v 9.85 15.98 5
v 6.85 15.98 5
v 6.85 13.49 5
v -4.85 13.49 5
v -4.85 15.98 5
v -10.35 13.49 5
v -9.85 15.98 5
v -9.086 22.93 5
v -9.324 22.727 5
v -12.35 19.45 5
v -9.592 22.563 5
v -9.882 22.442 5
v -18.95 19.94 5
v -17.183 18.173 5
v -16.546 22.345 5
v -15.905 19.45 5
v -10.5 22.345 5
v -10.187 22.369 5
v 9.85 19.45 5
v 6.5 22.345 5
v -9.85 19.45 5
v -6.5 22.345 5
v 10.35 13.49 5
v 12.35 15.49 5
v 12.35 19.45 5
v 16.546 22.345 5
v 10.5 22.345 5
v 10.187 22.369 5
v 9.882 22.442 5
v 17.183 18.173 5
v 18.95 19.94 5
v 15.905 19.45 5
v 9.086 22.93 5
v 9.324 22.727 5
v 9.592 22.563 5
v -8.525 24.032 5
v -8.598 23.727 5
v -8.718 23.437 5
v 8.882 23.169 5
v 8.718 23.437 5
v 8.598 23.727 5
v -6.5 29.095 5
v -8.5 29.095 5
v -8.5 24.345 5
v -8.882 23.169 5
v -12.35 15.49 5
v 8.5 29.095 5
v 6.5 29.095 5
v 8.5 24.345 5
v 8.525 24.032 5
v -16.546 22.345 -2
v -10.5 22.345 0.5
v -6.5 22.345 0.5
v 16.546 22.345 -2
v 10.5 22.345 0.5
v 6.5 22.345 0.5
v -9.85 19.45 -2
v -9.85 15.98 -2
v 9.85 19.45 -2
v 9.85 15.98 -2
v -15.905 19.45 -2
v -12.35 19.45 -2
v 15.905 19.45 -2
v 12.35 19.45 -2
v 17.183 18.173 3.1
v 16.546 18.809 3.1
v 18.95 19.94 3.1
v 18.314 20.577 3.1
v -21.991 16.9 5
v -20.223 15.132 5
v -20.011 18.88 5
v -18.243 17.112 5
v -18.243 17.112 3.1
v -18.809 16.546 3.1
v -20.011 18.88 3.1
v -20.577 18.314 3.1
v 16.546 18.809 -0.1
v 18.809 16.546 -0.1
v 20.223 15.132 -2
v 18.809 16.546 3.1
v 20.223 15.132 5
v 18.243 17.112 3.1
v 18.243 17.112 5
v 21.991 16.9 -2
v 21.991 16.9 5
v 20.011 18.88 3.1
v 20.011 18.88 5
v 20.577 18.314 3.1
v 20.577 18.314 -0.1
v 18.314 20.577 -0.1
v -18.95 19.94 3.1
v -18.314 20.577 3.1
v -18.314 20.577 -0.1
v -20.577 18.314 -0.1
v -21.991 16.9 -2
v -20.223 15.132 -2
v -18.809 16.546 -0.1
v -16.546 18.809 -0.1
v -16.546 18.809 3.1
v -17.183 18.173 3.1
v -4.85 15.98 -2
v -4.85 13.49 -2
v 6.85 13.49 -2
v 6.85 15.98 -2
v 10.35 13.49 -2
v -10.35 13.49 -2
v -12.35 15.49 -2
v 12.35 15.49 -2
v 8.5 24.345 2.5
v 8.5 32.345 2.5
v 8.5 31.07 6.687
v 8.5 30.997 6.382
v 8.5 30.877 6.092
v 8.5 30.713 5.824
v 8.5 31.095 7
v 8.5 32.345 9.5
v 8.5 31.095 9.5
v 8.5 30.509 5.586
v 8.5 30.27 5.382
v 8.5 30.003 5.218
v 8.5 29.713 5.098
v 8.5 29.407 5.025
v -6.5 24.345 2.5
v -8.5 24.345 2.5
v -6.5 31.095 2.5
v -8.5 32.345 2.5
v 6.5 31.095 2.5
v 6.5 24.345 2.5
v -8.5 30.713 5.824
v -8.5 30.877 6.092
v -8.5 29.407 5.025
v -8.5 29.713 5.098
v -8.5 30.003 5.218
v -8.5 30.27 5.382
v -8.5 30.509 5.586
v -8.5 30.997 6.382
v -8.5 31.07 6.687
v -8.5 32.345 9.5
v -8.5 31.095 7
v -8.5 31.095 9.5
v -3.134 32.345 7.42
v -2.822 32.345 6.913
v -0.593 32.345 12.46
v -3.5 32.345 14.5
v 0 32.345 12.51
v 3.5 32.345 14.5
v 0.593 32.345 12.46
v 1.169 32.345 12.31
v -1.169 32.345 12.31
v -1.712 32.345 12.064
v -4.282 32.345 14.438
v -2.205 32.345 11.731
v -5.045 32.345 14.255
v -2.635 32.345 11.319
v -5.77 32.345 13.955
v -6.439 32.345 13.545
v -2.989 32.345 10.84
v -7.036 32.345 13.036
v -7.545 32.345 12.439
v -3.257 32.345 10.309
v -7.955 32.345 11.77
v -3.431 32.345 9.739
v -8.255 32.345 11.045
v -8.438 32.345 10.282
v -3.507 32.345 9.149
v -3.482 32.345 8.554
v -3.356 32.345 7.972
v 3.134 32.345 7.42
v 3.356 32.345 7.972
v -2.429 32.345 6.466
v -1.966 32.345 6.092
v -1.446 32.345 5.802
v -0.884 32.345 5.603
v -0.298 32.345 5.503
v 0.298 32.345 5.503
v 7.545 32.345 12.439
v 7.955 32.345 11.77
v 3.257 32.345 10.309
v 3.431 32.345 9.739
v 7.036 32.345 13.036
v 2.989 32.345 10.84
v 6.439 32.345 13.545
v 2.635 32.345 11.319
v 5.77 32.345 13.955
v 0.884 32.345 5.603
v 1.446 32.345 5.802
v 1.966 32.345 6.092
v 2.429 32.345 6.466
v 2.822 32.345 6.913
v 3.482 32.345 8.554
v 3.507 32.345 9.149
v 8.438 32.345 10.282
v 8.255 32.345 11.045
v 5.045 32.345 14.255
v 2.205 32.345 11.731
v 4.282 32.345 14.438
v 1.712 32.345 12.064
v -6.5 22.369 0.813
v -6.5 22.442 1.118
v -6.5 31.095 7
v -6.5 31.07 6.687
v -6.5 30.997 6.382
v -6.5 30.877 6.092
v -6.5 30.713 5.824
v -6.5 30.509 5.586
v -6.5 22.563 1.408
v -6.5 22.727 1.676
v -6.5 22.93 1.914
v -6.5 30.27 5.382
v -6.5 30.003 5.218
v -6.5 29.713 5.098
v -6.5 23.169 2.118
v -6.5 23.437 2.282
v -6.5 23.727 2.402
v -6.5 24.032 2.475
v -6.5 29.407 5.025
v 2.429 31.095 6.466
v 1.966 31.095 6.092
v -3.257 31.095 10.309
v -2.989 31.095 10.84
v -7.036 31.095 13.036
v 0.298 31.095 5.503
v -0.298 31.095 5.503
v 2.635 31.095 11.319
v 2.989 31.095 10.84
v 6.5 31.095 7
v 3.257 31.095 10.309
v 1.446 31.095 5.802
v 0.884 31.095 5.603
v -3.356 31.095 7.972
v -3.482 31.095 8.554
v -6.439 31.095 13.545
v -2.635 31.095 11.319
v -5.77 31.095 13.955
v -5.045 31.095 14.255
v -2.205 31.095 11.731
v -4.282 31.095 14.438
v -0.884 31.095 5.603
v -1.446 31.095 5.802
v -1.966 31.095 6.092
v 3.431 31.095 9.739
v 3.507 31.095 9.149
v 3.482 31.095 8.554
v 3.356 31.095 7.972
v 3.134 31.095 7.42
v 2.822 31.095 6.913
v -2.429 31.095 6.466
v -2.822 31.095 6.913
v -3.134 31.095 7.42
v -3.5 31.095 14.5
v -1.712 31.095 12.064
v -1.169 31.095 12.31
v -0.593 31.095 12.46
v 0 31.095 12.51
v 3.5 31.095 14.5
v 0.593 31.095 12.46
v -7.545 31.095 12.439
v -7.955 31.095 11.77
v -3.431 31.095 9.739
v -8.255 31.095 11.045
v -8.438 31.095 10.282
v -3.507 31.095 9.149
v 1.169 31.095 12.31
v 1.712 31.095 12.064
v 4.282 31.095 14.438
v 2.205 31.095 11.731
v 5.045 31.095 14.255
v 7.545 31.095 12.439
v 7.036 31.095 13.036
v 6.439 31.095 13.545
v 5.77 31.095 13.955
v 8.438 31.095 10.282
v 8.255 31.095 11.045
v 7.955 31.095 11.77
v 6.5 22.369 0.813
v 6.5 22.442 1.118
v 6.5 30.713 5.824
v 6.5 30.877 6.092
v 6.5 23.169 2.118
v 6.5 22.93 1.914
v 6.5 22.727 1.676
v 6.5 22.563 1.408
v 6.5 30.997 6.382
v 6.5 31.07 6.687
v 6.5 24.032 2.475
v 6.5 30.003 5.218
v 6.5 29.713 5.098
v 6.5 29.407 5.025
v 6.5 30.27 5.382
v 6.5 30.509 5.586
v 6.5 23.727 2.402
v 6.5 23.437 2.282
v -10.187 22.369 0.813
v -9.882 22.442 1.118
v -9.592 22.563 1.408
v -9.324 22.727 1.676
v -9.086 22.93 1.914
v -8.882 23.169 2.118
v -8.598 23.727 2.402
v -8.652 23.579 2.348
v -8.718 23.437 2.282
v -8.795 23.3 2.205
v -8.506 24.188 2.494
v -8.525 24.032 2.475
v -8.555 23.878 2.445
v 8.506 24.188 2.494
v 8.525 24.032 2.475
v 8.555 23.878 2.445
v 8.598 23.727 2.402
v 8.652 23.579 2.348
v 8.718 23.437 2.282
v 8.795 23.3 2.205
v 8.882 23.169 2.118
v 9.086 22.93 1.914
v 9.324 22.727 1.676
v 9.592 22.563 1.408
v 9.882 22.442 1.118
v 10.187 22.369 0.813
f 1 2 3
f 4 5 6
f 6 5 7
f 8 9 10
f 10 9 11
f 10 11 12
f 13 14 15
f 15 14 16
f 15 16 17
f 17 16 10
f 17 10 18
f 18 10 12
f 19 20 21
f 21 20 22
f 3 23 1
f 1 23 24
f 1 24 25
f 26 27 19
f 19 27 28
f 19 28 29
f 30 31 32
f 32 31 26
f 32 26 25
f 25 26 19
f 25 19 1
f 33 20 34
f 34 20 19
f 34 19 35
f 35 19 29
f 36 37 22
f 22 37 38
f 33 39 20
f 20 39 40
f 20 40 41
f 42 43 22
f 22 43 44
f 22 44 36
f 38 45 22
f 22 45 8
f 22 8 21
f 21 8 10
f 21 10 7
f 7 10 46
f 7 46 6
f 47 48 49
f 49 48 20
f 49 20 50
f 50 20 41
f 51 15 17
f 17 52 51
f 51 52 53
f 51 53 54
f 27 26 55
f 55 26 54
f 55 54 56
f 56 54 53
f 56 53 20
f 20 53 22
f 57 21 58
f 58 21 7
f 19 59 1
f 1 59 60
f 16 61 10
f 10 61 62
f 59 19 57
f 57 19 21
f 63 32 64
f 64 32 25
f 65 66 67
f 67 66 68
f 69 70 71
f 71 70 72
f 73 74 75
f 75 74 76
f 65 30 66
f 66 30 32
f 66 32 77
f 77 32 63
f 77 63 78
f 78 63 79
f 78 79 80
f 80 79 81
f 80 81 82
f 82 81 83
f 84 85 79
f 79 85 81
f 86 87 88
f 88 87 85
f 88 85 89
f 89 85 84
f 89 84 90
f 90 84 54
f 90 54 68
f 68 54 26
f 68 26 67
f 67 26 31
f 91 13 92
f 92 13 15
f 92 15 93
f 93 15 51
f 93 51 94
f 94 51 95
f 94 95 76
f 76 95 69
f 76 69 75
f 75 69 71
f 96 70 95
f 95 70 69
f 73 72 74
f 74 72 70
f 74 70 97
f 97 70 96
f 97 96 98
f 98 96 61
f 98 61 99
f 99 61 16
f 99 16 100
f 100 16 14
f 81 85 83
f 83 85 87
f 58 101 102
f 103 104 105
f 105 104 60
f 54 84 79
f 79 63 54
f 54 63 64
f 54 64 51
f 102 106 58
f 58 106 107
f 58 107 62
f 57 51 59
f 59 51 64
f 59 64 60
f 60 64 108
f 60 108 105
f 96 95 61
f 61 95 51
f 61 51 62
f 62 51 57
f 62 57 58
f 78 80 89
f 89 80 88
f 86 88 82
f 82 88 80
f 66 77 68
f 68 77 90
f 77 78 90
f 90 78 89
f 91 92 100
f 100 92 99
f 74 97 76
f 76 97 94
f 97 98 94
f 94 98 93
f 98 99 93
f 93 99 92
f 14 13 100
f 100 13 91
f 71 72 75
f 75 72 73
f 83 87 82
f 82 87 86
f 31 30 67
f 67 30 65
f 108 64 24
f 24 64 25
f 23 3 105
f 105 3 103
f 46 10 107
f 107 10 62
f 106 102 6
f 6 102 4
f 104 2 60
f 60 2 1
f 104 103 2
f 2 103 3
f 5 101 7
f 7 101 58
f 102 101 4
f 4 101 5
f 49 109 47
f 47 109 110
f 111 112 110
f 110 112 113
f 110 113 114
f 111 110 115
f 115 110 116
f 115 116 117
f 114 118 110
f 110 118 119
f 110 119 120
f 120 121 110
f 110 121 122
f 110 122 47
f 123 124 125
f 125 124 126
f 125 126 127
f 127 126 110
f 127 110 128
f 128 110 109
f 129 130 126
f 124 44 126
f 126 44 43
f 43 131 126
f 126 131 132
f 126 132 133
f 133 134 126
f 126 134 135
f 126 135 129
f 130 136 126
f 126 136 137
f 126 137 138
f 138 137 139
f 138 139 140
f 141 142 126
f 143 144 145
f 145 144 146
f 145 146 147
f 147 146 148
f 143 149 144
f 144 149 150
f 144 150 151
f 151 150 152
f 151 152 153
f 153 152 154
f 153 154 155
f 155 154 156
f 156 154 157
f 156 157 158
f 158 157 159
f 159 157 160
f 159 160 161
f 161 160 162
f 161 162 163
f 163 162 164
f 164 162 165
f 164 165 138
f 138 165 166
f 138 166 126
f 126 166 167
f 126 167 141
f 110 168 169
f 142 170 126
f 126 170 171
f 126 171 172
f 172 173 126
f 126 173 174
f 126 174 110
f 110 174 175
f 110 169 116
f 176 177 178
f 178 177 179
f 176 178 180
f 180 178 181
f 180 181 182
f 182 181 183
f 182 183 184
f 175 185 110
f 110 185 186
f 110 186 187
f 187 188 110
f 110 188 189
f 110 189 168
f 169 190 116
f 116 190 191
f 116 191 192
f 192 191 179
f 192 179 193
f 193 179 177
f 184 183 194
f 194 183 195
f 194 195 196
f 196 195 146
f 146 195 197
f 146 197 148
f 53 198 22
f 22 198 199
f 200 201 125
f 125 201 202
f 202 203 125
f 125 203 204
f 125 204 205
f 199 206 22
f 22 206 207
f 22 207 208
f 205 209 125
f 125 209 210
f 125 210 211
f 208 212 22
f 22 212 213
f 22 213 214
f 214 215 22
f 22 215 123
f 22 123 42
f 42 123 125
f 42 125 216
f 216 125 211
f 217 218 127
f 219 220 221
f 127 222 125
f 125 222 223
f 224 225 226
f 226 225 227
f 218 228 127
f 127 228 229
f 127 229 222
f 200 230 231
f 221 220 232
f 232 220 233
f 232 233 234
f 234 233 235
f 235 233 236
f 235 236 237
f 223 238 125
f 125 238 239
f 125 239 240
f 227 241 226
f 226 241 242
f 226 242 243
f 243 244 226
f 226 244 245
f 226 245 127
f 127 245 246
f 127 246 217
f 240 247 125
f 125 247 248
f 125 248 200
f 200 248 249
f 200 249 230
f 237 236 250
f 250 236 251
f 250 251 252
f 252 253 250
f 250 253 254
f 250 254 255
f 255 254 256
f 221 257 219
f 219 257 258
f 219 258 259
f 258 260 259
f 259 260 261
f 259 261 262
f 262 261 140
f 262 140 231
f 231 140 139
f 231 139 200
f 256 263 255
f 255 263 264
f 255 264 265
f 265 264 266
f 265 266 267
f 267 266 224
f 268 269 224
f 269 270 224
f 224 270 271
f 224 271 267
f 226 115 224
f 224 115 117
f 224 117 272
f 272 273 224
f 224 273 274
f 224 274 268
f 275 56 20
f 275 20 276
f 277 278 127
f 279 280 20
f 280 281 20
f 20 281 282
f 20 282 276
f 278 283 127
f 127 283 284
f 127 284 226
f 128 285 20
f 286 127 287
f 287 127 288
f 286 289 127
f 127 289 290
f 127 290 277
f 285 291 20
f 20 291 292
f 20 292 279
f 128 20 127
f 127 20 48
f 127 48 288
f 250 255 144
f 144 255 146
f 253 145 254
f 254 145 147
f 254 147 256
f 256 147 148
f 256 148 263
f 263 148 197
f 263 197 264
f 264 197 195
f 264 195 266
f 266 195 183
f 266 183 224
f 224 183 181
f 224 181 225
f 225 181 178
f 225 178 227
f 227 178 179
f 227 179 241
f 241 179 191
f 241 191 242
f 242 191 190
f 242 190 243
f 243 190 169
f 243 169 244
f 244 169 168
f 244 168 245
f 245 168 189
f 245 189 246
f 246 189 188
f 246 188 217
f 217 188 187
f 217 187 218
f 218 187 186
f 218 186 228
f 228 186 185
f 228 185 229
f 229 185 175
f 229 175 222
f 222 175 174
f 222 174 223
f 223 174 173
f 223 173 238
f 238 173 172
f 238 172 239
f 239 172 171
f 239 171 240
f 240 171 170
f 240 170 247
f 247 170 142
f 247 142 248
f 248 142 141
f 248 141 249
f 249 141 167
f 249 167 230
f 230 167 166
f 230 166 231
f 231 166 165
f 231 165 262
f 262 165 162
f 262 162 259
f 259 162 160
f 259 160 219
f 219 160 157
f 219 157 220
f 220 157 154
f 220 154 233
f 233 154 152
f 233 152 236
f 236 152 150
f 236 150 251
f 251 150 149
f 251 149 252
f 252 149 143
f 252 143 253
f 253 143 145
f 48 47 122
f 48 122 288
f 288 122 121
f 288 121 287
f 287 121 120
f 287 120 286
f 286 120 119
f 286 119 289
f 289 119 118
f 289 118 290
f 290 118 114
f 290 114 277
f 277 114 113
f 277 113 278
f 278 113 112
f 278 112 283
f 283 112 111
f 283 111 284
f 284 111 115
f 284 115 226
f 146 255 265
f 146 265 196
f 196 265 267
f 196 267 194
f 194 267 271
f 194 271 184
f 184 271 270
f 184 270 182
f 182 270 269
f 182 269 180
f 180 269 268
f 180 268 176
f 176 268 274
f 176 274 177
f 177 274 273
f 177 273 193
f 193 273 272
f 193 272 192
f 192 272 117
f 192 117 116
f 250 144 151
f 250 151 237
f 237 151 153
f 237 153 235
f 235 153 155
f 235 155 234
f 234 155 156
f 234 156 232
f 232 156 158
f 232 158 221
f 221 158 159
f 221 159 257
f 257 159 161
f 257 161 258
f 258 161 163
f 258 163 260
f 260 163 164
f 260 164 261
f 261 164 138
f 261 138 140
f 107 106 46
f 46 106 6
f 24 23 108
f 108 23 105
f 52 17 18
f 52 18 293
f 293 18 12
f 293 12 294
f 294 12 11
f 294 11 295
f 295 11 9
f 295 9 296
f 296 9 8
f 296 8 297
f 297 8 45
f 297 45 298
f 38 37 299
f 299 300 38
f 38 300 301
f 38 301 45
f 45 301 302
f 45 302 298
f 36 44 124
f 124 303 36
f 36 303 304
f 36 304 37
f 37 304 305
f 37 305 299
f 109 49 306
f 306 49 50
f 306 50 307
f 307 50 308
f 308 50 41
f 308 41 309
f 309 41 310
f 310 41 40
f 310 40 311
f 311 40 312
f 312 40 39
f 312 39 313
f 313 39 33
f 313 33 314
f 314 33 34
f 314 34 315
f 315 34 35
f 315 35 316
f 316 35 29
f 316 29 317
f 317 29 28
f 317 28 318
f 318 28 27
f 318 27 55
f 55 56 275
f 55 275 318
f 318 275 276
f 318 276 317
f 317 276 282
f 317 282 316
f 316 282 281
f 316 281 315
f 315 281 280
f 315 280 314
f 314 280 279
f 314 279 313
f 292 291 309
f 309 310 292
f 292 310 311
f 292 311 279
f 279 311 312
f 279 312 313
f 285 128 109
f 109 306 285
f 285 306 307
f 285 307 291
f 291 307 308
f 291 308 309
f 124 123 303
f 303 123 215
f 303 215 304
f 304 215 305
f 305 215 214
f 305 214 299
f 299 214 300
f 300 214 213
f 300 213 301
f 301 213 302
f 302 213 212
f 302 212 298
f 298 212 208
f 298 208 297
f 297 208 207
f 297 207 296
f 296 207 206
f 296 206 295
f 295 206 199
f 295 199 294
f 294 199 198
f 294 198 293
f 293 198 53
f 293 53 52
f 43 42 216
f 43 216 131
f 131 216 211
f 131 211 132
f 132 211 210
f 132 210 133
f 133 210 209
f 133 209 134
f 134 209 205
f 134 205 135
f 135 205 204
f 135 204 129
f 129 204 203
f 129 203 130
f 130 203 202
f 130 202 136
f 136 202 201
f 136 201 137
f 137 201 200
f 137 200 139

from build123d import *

# Parameters (mm, degrees)
BOSS_EXTRUDE2_DEPTH = 5
BOSS_EXTRUDE3_DEPTH = 2
SKETCH4_W           = 3.2
SKETCH4_H           = 3.2
CUT_EXTRUDE1_DEPTH  = 2.5
SKETCH5_W           = 3.2
SKETCH5_H           = 3.2
CUT_EXTRUDE2_DEPTH  = 2.5
CUT_EXTRUDE4_REACH  = 34.123
CUT_EXTRUDE5_REACH  = 34.123
SKETCH8_W           = 2.5
SKETCH8_H           = 7
BOSS_EXTRUDE4_DEPTH = 5.96
SKETCH10_W          = 7
SKETCH10_H          = 2.49
BOSS_EXTRUDE5_DEPTH = 3
SKETCH11_W          = 7
SKETCH11_H          = 2.49
BOSS_EXTRUDE6_DEPTH = 5
SKETCH12_W          = 17
SKETCH12_H          = 2.5
BOSS_EXTRUDE7_DEPTH = 10
CUT_EXTRUDE7_REACH  = 41.734
SKETCH14_W          = 13
SKETCH14_H          = 8.75
SKETCH16_W          = 17
SKETCH16_H          = 1.25
BOSS_EXTRUDE8_DEPTH = 9.5
CUT_EXTRUDE8_REACH  = 34.394
SKETCH17_R          = 3.51
FILLET7_R           = 2
FILLET8_R           = 5
FILLET9_R           = 5
CHAMFER1_SIZE       = 2
CHAMFER2_SIZE       = 2
FILLET11_R          = 2
FILLET12_R          = 2
FILLET13_R          = 2
FILLET14_R          = 2
FILLET16_R          = 2


with BuildPart() as part:
    # Sketch2 → Boss-Extrude2 (new body)
    with BuildSketch(Plane.XY):
        Polygon((15.905331571, 19.450007488), (-15.905331571, 19.450007488), (-20.223253942, 15.132085117), (-21.991020895, 16.89985207), (-16.54629868, 22.344574285), (16.54629868, 22.344574285), (21.991020895, 16.89985207), (20.223253942, 15.132085117), align=None)
    extrude(amount=BOSS_EXTRUDE2_DEPTH)

    # Sketch2<2> → Boss-Extrude3 (add)
    with BuildSketch(Plane.XY):
        Polygon((15.905331571, 19.450007488), (-15.905331571, 19.450007488), (-20.223253942, 15.132085117), (-21.991020895, 16.89985207), (-16.54629868, 22.344574285), (16.54629868, 22.344574285), (21.991020895, 16.89985207), (20.223253942, 15.132085117), align=None)
    extrude(amount=-BOSS_EXTRUDE3_DEPTH)

    # Sketch4 → Cut-Extrude1 (cut)
    with BuildSketch(Plane(origin=(19.445436483, 19.445436483, 0), x_dir=(0.7071067811865479, -0.7071067811865471, 0), z_dir=(0.7071067811865471, 0.7071067811865479, 0))):
        with Locations((0, -1.5)):
            Rectangle(SKETCH4_W, SKETCH4_H)
    extrude(amount=-CUT_EXTRUDE1_DEPTH, mode=Mode.SUBTRACT)

    # Sketch5 → Cut-Extrude2 (cut)
    with BuildSketch(Plane(origin=(-19.445436483, 19.445436483, 0), x_dir=(0, 0, 1), z_dir=(-0.7071067811865477, 0.7071067811865475, 0))):
        with Locations((1.5, 0)):
            Rectangle(SKETCH5_W, SKETCH5_H)
    extrude(amount=-CUT_EXTRUDE2_DEPTH, mode=Mode.SUBTRACT)

    # Sketch6 → Cut-Extrude4 (cut, up to next)
    with BuildSketch(Plane.XY.offset(5), mode=Mode.PRIVATE) as cut_extrude4_sk1:
        Polygon((-20.011121908, 18.879751058), (-18.950461736, 19.940411229), (-17.182694783, 18.172644276), (-18.243354955, 17.111984105), align=None)
    cut_extrude4_tool1 = extrude(cut_extrude4_sk1.sketch, amount=-CUT_EXTRUDE4_REACH, mode=Mode.PRIVATE) & part.part
    add(cut_extrude4_tool1.solids().sort_by_distance((-18.596908, 18.526198, 5))[0], mode=Mode.SUBTRACT)

    # Sketch7 → Cut-Extrude5 (cut, up to next)
    with BuildSketch(Plane.XY.offset(5), mode=Mode.PRIVATE) as cut_extrude5_sk1:
        Polygon((17.182694783, 18.172644276), (18.950461736, 19.940411229), (20.011121908, 18.879751058), (18.243354955, 17.111984105), align=None)
    cut_extrude5_tool1 = extrude(cut_extrude5_sk1.sketch, amount=-CUT_EXTRUDE5_REACH, mode=Mode.PRIVATE) & part.part
    add(cut_extrude5_tool1.solids().sort_by_distance((18.596908, 18.526198, 5))[0], mode=Mode.SUBTRACT)

    # Sketch8 → Boss-Extrude4 (add)
    with BuildSketch(Plane(origin=(0, 19.450007488, 0), x_dir=(-1, 0, 0), z_dir=(0, -1, 0))):
        with Locations((11.1, -1.5)):
            Rectangle(SKETCH8_W, SKETCH8_H)
        with Locations((-11.1, -1.5)):
            Rectangle(SKETCH8_W, SKETCH8_H)
    extrude(amount=BOSS_EXTRUDE4_DEPTH)

    # Sketch10 → Boss-Extrude5 (add)
    with BuildSketch(Plane.ZY.offset(-9.85)):
        with Locations((1.5, 14.735007488)):
            Rectangle(SKETCH10_W, SKETCH10_H)
    extrude(amount=BOSS_EXTRUDE5_DEPTH)

    # Sketch11 → Boss-Extrude6 (add)
    with BuildSketch(Plane(origin=(-9.85, 0, 0), x_dir=(0, 0, -1), z_dir=(1, 0, 0))):
        with Locations((-1.5, 14.735007488)):
            Rectangle(SKETCH11_W, SKETCH11_H)
    extrude(amount=BOSS_EXTRUDE6_DEPTH)

    # Sketch12 → Boss-Extrude7 (add)
    with BuildSketch(Plane(origin=(0, 22.344574285, 0), x_dir=(1, 0, 0), z_dir=(0, 1, 0))):
        with Locations((0, -3.75)):
            Rectangle(SKETCH12_W, SKETCH12_H)
    extrude(amount=BOSS_EXTRUDE7_DEPTH)

    # Sketch14 → Cut-Extrude7 (cut, up to next)
    with BuildSketch(Plane.XY.offset(5), mode=Mode.PRIVATE) as cut_extrude7_sk1:
        with Locations((0, 26.719574285)):
            Rectangle(SKETCH14_W, SKETCH14_H)
    cut_extrude7_tool1 = extrude(cut_extrude7_sk1.sketch, amount=-CUT_EXTRUDE7_REACH, mode=Mode.PRIVATE) & part.part
    add(cut_extrude7_tool1.solids().sort_by_distance((0, 26.719574, 5))[0], mode=Mode.SUBTRACT)

    # Sketch16 → Boss-Extrude8 (add)
    with BuildSketch(Plane.XY.offset(5)):
        with Locations((0, 31.719574285)):
            Rectangle(SKETCH16_W, SKETCH16_H)
    extrude(amount=BOSS_EXTRUDE8_DEPTH)

    # Sketch17 → Cut-Extrude8 (cut, up to next)
    with BuildSketch(Plane(origin=(0, 32.344574285, 0), x_dir=(1, 0, 0), z_dir=(0, 1, 0)), mode=Mode.PRIVATE) as cut_extrude8_sk1:
        with Locations((0, -9)):
            Circle(SKETCH17_R)
    cut_extrude8_tool1 = extrude(cut_extrude8_sk1.sketch, amount=-CUT_EXTRUDE8_REACH, mode=Mode.PRIVATE) & part.part
    add(cut_extrude8_tool1.solids().sort_by_distance((0, 32.344574, 9))[0], mode=Mode.SUBTRACT)

    # Fillet7
    fillet7_edges = [part.edges().sort_by_distance(p)[0] for p in [
        (7.5, 31.094574285, 5),
    ]]
    fillet(fillet7_edges, radius=FILLET7_R)

    # Fillet8
    fillet8_edges = [part.edges().sort_by_distance(p)[0] for p in [
        (8.5, 31.719574285, 14.5),
    ]]
    fillet(fillet8_edges, radius=FILLET8_R)

    # Fillet9
    fillet9_edges = [part.edges().sort_by_distance(p)[0] for p in [
        (-8.5, 31.719574285, 14.5),
    ]]
    fillet(fillet9_edges, radius=FILLET9_R)

    # Chamfer1
    chamfer1_edges = [part.edges().sort_by_distance(p)[0] for p in [
        (-12.35, 13.490007488, 1.5),
    ]]
    chamfer(chamfer1_edges, length=CHAMFER1_SIZE)

    # Chamfer2
    chamfer2_edges = [part.edges().sort_by_distance(p)[0] for p in [
        (12.35, 13.490007488, 1.5),
    ]]
    chamfer(chamfer2_edges, length=CHAMFER2_SIZE)

    # Fillet11
    fillet11_edges = [part.edges().sort_by_distance(p)[0] for p in [
        (-8.5, 22.344574285, 3.75),
    ]]
    fillet(fillet11_edges, radius=FILLET11_R)

    # Fillet12
    fillet12_edges = [part.edges().sort_by_distance(p)[0] for p in [
        (8.5, 22.344574285, 3.75),
    ]]
    fillet(fillet12_edges, radius=FILLET12_R)

    # Fillet13
    fillet13_edges = [part.edges().sort_by_distance(p)[0] for p in [
        (8.5, 22.344574285, 2.5),
    ]]
    fillet(fillet13_edges, radius=FILLET13_R)

    # Fillet14
    fillet14_edges = [part.edges().sort_by_distance(p)[0] for p in [
        (-8.5, 22.344574285, 2.5),
    ]]
    fillet(fillet14_edges, radius=FILLET14_R)

    # Fillet16
    fillet16_edges = [part.edges().sort_by_distance(p)[0] for p in [
        (-7.5, 31.094574285, 5),
    ]]
    fillet(fillet16_edges, radius=FILLET16_R)


solid = part.part
